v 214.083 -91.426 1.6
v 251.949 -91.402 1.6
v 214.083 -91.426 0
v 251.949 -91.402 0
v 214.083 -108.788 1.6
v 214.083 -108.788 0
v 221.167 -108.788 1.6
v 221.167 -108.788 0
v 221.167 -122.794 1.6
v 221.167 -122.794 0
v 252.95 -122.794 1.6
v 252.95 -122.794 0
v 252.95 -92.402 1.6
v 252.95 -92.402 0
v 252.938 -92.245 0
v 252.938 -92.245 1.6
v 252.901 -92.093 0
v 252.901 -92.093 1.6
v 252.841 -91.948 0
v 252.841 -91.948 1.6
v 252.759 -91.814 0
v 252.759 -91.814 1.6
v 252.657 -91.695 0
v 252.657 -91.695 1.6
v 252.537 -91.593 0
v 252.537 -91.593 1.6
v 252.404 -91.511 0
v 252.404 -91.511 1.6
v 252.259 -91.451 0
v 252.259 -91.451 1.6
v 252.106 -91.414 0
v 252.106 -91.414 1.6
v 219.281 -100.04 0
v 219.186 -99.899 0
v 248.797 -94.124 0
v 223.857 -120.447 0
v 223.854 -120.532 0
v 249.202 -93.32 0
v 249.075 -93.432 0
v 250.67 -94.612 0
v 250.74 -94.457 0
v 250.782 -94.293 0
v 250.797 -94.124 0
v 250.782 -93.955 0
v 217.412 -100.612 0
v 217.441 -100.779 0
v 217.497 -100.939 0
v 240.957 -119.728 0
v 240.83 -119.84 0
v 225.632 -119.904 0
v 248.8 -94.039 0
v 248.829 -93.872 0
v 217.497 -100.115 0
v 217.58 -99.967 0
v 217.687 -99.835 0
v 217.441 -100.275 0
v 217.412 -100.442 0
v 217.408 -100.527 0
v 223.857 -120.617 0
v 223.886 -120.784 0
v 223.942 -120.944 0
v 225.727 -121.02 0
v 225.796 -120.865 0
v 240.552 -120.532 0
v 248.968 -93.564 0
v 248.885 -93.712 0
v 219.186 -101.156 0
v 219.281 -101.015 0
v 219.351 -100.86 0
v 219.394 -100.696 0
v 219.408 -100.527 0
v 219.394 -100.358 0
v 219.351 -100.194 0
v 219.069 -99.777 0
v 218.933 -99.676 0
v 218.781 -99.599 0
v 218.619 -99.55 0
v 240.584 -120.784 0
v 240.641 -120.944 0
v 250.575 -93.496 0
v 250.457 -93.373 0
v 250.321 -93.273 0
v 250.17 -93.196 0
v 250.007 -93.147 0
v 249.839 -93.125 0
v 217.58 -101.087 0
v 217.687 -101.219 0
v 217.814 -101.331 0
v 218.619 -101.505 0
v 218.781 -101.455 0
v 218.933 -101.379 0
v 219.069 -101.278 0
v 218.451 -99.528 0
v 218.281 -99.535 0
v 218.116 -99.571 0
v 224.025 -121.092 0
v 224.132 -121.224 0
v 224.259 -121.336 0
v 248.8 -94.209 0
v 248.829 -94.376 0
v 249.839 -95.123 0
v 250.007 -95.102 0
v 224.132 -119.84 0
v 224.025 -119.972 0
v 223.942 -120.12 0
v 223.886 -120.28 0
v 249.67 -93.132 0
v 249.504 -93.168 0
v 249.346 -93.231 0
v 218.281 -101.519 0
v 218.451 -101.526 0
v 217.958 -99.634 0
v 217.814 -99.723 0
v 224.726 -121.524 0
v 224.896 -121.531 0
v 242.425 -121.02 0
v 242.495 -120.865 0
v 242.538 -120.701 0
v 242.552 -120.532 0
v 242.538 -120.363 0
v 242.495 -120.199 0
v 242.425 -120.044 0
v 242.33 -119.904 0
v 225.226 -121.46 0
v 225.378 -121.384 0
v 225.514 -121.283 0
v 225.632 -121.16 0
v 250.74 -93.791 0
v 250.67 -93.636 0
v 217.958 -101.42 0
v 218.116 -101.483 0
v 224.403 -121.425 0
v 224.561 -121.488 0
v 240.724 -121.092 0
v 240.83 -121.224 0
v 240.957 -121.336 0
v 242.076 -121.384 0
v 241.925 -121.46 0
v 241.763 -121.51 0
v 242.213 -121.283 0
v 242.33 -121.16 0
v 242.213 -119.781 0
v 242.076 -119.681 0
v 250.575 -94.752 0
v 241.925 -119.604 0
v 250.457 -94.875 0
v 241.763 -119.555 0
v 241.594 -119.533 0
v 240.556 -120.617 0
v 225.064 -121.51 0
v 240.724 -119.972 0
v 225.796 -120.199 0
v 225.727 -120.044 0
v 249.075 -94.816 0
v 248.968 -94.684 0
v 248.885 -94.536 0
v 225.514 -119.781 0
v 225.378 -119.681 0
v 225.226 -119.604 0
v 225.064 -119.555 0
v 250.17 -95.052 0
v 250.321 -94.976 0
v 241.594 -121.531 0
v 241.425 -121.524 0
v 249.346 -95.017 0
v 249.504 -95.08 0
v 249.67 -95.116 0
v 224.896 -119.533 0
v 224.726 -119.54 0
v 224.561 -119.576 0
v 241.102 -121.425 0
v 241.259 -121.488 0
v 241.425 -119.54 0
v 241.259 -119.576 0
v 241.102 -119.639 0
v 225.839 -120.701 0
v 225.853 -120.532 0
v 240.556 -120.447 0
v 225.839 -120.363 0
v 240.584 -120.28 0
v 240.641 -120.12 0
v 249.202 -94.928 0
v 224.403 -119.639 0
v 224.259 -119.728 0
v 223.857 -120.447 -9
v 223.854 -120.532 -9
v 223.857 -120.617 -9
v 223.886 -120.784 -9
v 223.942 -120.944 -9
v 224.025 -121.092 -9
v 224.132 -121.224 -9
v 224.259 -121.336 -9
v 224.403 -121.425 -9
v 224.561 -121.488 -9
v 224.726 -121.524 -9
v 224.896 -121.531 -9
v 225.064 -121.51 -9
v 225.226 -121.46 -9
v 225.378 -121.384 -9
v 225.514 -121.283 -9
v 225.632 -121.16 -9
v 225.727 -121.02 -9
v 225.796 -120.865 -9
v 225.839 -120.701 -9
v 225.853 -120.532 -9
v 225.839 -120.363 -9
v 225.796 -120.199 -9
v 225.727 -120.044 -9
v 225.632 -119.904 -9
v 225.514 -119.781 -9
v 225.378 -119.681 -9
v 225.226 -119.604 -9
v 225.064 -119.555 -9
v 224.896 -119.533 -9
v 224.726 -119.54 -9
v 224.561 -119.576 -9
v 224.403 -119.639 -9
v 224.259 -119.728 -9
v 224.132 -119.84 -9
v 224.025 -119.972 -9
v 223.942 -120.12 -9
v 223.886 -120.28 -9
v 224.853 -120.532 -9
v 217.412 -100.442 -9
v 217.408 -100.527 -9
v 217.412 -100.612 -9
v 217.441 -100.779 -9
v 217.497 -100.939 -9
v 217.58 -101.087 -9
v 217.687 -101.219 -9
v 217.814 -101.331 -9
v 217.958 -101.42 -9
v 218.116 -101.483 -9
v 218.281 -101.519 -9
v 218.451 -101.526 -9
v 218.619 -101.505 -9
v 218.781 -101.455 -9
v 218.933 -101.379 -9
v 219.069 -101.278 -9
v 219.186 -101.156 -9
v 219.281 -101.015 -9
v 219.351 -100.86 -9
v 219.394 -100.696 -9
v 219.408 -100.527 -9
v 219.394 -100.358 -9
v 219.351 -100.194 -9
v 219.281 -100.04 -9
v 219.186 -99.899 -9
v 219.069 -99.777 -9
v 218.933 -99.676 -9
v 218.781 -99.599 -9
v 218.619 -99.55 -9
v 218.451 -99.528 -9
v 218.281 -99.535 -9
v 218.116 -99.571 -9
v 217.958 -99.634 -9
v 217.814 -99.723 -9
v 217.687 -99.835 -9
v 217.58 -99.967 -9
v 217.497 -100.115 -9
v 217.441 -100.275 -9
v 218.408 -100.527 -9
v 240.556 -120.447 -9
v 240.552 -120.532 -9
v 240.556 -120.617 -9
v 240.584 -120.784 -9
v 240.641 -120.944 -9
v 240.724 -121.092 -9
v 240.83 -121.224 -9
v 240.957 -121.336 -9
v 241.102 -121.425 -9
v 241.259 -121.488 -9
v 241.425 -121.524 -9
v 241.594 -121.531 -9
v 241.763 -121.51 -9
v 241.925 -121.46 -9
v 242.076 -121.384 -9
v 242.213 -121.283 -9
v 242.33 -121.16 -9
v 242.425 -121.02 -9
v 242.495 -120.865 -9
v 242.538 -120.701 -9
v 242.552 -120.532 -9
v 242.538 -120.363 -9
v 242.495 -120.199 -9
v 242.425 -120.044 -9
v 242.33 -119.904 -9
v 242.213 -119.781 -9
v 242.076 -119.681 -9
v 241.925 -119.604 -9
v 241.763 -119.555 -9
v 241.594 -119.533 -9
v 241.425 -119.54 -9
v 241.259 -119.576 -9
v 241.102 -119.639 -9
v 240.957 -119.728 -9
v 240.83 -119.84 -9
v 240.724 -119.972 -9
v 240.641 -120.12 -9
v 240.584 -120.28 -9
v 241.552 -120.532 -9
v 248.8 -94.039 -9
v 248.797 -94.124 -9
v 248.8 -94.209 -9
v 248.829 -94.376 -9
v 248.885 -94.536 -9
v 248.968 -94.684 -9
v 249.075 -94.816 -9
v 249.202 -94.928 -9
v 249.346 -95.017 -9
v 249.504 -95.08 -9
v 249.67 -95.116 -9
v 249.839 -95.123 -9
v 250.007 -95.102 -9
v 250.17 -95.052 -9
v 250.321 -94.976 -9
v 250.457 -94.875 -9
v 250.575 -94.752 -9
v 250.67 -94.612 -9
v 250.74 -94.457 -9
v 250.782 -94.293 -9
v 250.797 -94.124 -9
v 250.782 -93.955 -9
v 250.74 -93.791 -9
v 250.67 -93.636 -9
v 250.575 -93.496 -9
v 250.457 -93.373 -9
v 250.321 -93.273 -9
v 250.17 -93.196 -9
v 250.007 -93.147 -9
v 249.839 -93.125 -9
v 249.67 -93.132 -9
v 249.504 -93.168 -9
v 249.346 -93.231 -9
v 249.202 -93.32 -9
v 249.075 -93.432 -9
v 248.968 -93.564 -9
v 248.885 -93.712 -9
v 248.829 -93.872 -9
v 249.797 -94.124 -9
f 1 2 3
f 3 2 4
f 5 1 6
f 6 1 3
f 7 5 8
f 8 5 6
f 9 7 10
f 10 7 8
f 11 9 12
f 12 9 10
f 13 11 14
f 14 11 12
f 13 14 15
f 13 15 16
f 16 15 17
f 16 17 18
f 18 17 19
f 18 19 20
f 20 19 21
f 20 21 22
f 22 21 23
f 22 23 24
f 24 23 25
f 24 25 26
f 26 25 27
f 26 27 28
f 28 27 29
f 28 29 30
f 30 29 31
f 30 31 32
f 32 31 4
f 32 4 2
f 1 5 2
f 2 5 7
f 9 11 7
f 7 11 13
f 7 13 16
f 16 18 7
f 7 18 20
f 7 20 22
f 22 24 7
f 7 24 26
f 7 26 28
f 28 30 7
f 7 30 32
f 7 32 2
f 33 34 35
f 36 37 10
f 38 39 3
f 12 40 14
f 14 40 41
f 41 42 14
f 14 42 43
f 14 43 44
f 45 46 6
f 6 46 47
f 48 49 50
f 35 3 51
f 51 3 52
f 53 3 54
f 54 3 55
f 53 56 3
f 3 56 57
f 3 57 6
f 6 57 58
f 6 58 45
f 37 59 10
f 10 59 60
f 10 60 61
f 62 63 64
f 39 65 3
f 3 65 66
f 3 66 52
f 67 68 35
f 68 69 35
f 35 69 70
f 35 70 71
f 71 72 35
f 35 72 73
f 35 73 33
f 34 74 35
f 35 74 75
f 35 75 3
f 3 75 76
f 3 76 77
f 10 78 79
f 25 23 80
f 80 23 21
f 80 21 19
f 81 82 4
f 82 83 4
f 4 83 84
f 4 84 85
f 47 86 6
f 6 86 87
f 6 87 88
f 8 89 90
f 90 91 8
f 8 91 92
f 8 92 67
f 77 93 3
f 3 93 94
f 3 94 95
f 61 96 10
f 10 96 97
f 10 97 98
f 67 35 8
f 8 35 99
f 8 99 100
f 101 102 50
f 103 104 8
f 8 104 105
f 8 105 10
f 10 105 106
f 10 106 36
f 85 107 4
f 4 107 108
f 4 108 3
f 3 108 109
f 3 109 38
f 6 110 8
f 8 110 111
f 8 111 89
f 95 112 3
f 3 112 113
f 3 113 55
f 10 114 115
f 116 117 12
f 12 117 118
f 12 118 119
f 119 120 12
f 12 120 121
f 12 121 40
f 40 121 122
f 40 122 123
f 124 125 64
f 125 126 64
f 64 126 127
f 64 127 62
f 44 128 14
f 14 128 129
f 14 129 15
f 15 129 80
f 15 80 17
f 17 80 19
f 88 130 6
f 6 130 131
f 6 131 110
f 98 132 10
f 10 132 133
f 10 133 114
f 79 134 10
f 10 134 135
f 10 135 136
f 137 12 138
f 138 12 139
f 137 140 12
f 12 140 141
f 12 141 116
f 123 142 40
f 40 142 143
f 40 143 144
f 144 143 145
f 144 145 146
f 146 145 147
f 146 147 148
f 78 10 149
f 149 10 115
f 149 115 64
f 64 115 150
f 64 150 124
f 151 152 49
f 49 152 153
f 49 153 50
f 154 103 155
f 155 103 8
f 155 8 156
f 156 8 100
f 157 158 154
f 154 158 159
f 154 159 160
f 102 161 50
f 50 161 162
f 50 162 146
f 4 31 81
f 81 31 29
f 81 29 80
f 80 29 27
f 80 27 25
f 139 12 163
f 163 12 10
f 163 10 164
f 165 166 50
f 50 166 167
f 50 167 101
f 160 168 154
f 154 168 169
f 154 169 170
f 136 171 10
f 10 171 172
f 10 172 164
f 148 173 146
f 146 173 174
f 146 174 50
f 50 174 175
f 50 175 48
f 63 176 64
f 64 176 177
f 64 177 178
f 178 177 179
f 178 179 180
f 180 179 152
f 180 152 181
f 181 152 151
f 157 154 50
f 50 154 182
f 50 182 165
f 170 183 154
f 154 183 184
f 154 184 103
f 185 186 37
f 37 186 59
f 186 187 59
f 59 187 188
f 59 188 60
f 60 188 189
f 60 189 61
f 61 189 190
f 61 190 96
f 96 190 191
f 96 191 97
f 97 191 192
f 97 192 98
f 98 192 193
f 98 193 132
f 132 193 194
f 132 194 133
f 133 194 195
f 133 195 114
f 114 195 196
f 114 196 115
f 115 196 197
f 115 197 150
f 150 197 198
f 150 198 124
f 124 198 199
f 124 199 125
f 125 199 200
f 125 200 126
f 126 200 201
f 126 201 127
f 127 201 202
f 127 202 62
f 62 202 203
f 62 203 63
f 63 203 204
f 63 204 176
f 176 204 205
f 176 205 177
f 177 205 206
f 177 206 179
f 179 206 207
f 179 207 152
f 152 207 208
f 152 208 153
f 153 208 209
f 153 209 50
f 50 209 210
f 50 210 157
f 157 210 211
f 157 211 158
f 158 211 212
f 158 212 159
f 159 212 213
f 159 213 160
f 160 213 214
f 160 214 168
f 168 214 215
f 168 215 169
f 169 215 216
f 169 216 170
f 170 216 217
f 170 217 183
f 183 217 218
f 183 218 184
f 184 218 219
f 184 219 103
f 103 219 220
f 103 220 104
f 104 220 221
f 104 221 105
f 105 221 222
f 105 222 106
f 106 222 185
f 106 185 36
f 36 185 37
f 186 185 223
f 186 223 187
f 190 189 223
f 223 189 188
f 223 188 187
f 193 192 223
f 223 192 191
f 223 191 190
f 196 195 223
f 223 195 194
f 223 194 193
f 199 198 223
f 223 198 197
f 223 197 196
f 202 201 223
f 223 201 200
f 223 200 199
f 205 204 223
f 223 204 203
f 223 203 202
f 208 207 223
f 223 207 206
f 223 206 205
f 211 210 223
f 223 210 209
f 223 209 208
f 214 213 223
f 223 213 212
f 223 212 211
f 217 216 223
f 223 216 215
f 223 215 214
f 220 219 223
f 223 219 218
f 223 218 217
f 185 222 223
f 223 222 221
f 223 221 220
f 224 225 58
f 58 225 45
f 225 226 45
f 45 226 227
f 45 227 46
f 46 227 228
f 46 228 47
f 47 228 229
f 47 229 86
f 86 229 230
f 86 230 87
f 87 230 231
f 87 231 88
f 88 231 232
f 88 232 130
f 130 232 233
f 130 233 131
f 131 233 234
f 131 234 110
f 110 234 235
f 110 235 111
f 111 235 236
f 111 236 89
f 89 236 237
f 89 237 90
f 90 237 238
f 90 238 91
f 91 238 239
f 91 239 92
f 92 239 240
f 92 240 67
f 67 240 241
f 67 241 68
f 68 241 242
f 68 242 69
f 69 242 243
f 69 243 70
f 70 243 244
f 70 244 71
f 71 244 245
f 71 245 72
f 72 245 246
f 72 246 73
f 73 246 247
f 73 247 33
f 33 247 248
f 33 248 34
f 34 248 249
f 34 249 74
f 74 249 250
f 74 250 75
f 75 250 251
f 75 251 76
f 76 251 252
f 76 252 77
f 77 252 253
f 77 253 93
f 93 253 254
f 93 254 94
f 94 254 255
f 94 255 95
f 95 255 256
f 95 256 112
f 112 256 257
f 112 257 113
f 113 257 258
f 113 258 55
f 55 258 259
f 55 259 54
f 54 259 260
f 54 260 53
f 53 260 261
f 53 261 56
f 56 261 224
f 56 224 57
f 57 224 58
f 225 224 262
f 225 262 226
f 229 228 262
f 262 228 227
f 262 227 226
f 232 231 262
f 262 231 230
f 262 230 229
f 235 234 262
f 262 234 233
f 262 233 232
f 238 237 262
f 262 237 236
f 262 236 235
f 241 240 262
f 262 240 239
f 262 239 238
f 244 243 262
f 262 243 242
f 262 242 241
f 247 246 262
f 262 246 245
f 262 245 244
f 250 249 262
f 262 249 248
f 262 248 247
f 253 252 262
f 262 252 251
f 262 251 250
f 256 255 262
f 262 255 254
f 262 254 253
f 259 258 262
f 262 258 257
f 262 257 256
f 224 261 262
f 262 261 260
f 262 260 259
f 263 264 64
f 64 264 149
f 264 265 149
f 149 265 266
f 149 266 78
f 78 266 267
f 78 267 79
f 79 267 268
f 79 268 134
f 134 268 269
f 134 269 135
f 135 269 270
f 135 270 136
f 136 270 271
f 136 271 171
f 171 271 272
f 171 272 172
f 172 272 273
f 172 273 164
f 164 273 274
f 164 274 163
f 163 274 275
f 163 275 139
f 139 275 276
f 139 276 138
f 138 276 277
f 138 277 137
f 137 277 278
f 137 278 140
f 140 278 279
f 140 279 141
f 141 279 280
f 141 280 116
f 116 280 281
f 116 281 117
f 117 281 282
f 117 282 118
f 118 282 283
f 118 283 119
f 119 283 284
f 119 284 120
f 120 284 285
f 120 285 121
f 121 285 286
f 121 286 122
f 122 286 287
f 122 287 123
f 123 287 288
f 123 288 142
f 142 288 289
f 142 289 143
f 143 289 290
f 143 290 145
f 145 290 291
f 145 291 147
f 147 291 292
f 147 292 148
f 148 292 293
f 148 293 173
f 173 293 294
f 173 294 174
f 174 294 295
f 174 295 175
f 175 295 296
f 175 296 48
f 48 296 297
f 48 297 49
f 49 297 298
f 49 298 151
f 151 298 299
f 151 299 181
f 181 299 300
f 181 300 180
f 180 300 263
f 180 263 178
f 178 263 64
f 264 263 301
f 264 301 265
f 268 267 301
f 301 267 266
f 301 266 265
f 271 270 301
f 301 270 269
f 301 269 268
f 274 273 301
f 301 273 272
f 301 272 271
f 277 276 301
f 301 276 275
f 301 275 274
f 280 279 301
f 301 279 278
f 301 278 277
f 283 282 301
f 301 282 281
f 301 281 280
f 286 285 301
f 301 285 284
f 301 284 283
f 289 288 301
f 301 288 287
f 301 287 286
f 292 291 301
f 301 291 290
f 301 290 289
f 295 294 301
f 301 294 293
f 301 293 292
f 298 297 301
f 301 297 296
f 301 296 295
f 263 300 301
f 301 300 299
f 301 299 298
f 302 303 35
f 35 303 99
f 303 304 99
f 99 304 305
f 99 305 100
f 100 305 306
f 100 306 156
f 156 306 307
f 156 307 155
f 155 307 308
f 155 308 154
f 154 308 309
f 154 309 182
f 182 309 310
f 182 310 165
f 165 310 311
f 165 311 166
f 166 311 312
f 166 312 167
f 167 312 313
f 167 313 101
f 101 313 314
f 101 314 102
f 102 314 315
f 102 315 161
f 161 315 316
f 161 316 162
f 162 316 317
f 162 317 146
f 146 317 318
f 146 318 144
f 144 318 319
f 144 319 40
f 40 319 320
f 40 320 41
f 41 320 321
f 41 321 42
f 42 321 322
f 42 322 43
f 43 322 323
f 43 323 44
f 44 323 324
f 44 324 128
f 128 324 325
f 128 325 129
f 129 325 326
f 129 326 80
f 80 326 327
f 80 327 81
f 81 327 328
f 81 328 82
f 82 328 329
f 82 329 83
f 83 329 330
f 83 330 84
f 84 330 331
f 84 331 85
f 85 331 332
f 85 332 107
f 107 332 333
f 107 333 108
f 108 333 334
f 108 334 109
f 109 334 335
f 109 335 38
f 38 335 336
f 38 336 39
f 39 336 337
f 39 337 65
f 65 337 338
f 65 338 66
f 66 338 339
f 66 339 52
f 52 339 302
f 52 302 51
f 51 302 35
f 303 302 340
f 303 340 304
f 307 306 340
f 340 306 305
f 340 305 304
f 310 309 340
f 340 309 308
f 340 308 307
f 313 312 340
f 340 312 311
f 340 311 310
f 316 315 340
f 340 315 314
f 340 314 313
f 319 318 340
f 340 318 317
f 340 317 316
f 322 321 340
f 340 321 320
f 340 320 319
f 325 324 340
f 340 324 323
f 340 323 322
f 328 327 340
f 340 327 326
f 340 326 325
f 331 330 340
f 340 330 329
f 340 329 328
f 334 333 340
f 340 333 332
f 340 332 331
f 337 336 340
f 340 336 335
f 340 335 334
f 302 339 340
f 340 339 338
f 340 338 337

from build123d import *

# Parameters (mm, degrees)
BOSS_EXTRUDE1_DEPTH = 1.6
SKETCH5_R           = 1
BOSS_EXTRUDE2_DEPTH = 9


with BuildPart() as part:
    # Sketch4 → Boss-Extrude1 (new body)
    with BuildSketch(Plane.XY):
        with BuildLine():
            Line((214.083314686, -91.426205385), (214.083314686, -108.78795934))
            Line((214.083314686, -108.78795934), (221.166748687, -108.78795934))
            Line((221.166748687, -108.78795934), (221.166748687, -122.793871773))
            Line((221.166748687, -122.793871773), (252.95, -122.793871773))
            Line((252.95, -122.793871773), (252.95, -92.4019243))
            ThreePointArc((252.95, -92.4019243), (252.656880102, -91.694590841), (251.949358863, -91.401924489))
            Line((251.949358863, -91.401924489), (214.083314686, -91.426205385))
        make_face()
    extrude(amount=BOSS_EXTRUDE1_DEPTH)

    # Sketch5 → Boss-Extrude2 (add)
    with BuildSketch(Plane(origin=(0, 0, 0), x_dir=(-1, 0, 0), z_dir=(0, 0, -1))):
        with Locations((-224.853507667, -120.53205767)):
            Circle(SKETCH5_R)
        with Locations((-218.408459116, -100.527296583)):
            Circle(SKETCH5_R)
        with Locations((-241.552042549, -120.53205767)):
            Circle(SKETCH5_R)
        with Locations((-249.796682579, -94.124098997)):
            Circle(SKETCH5_R)
    extrude(amount=BOSS_EXTRUDE2_DEPTH)


solid = part.part
